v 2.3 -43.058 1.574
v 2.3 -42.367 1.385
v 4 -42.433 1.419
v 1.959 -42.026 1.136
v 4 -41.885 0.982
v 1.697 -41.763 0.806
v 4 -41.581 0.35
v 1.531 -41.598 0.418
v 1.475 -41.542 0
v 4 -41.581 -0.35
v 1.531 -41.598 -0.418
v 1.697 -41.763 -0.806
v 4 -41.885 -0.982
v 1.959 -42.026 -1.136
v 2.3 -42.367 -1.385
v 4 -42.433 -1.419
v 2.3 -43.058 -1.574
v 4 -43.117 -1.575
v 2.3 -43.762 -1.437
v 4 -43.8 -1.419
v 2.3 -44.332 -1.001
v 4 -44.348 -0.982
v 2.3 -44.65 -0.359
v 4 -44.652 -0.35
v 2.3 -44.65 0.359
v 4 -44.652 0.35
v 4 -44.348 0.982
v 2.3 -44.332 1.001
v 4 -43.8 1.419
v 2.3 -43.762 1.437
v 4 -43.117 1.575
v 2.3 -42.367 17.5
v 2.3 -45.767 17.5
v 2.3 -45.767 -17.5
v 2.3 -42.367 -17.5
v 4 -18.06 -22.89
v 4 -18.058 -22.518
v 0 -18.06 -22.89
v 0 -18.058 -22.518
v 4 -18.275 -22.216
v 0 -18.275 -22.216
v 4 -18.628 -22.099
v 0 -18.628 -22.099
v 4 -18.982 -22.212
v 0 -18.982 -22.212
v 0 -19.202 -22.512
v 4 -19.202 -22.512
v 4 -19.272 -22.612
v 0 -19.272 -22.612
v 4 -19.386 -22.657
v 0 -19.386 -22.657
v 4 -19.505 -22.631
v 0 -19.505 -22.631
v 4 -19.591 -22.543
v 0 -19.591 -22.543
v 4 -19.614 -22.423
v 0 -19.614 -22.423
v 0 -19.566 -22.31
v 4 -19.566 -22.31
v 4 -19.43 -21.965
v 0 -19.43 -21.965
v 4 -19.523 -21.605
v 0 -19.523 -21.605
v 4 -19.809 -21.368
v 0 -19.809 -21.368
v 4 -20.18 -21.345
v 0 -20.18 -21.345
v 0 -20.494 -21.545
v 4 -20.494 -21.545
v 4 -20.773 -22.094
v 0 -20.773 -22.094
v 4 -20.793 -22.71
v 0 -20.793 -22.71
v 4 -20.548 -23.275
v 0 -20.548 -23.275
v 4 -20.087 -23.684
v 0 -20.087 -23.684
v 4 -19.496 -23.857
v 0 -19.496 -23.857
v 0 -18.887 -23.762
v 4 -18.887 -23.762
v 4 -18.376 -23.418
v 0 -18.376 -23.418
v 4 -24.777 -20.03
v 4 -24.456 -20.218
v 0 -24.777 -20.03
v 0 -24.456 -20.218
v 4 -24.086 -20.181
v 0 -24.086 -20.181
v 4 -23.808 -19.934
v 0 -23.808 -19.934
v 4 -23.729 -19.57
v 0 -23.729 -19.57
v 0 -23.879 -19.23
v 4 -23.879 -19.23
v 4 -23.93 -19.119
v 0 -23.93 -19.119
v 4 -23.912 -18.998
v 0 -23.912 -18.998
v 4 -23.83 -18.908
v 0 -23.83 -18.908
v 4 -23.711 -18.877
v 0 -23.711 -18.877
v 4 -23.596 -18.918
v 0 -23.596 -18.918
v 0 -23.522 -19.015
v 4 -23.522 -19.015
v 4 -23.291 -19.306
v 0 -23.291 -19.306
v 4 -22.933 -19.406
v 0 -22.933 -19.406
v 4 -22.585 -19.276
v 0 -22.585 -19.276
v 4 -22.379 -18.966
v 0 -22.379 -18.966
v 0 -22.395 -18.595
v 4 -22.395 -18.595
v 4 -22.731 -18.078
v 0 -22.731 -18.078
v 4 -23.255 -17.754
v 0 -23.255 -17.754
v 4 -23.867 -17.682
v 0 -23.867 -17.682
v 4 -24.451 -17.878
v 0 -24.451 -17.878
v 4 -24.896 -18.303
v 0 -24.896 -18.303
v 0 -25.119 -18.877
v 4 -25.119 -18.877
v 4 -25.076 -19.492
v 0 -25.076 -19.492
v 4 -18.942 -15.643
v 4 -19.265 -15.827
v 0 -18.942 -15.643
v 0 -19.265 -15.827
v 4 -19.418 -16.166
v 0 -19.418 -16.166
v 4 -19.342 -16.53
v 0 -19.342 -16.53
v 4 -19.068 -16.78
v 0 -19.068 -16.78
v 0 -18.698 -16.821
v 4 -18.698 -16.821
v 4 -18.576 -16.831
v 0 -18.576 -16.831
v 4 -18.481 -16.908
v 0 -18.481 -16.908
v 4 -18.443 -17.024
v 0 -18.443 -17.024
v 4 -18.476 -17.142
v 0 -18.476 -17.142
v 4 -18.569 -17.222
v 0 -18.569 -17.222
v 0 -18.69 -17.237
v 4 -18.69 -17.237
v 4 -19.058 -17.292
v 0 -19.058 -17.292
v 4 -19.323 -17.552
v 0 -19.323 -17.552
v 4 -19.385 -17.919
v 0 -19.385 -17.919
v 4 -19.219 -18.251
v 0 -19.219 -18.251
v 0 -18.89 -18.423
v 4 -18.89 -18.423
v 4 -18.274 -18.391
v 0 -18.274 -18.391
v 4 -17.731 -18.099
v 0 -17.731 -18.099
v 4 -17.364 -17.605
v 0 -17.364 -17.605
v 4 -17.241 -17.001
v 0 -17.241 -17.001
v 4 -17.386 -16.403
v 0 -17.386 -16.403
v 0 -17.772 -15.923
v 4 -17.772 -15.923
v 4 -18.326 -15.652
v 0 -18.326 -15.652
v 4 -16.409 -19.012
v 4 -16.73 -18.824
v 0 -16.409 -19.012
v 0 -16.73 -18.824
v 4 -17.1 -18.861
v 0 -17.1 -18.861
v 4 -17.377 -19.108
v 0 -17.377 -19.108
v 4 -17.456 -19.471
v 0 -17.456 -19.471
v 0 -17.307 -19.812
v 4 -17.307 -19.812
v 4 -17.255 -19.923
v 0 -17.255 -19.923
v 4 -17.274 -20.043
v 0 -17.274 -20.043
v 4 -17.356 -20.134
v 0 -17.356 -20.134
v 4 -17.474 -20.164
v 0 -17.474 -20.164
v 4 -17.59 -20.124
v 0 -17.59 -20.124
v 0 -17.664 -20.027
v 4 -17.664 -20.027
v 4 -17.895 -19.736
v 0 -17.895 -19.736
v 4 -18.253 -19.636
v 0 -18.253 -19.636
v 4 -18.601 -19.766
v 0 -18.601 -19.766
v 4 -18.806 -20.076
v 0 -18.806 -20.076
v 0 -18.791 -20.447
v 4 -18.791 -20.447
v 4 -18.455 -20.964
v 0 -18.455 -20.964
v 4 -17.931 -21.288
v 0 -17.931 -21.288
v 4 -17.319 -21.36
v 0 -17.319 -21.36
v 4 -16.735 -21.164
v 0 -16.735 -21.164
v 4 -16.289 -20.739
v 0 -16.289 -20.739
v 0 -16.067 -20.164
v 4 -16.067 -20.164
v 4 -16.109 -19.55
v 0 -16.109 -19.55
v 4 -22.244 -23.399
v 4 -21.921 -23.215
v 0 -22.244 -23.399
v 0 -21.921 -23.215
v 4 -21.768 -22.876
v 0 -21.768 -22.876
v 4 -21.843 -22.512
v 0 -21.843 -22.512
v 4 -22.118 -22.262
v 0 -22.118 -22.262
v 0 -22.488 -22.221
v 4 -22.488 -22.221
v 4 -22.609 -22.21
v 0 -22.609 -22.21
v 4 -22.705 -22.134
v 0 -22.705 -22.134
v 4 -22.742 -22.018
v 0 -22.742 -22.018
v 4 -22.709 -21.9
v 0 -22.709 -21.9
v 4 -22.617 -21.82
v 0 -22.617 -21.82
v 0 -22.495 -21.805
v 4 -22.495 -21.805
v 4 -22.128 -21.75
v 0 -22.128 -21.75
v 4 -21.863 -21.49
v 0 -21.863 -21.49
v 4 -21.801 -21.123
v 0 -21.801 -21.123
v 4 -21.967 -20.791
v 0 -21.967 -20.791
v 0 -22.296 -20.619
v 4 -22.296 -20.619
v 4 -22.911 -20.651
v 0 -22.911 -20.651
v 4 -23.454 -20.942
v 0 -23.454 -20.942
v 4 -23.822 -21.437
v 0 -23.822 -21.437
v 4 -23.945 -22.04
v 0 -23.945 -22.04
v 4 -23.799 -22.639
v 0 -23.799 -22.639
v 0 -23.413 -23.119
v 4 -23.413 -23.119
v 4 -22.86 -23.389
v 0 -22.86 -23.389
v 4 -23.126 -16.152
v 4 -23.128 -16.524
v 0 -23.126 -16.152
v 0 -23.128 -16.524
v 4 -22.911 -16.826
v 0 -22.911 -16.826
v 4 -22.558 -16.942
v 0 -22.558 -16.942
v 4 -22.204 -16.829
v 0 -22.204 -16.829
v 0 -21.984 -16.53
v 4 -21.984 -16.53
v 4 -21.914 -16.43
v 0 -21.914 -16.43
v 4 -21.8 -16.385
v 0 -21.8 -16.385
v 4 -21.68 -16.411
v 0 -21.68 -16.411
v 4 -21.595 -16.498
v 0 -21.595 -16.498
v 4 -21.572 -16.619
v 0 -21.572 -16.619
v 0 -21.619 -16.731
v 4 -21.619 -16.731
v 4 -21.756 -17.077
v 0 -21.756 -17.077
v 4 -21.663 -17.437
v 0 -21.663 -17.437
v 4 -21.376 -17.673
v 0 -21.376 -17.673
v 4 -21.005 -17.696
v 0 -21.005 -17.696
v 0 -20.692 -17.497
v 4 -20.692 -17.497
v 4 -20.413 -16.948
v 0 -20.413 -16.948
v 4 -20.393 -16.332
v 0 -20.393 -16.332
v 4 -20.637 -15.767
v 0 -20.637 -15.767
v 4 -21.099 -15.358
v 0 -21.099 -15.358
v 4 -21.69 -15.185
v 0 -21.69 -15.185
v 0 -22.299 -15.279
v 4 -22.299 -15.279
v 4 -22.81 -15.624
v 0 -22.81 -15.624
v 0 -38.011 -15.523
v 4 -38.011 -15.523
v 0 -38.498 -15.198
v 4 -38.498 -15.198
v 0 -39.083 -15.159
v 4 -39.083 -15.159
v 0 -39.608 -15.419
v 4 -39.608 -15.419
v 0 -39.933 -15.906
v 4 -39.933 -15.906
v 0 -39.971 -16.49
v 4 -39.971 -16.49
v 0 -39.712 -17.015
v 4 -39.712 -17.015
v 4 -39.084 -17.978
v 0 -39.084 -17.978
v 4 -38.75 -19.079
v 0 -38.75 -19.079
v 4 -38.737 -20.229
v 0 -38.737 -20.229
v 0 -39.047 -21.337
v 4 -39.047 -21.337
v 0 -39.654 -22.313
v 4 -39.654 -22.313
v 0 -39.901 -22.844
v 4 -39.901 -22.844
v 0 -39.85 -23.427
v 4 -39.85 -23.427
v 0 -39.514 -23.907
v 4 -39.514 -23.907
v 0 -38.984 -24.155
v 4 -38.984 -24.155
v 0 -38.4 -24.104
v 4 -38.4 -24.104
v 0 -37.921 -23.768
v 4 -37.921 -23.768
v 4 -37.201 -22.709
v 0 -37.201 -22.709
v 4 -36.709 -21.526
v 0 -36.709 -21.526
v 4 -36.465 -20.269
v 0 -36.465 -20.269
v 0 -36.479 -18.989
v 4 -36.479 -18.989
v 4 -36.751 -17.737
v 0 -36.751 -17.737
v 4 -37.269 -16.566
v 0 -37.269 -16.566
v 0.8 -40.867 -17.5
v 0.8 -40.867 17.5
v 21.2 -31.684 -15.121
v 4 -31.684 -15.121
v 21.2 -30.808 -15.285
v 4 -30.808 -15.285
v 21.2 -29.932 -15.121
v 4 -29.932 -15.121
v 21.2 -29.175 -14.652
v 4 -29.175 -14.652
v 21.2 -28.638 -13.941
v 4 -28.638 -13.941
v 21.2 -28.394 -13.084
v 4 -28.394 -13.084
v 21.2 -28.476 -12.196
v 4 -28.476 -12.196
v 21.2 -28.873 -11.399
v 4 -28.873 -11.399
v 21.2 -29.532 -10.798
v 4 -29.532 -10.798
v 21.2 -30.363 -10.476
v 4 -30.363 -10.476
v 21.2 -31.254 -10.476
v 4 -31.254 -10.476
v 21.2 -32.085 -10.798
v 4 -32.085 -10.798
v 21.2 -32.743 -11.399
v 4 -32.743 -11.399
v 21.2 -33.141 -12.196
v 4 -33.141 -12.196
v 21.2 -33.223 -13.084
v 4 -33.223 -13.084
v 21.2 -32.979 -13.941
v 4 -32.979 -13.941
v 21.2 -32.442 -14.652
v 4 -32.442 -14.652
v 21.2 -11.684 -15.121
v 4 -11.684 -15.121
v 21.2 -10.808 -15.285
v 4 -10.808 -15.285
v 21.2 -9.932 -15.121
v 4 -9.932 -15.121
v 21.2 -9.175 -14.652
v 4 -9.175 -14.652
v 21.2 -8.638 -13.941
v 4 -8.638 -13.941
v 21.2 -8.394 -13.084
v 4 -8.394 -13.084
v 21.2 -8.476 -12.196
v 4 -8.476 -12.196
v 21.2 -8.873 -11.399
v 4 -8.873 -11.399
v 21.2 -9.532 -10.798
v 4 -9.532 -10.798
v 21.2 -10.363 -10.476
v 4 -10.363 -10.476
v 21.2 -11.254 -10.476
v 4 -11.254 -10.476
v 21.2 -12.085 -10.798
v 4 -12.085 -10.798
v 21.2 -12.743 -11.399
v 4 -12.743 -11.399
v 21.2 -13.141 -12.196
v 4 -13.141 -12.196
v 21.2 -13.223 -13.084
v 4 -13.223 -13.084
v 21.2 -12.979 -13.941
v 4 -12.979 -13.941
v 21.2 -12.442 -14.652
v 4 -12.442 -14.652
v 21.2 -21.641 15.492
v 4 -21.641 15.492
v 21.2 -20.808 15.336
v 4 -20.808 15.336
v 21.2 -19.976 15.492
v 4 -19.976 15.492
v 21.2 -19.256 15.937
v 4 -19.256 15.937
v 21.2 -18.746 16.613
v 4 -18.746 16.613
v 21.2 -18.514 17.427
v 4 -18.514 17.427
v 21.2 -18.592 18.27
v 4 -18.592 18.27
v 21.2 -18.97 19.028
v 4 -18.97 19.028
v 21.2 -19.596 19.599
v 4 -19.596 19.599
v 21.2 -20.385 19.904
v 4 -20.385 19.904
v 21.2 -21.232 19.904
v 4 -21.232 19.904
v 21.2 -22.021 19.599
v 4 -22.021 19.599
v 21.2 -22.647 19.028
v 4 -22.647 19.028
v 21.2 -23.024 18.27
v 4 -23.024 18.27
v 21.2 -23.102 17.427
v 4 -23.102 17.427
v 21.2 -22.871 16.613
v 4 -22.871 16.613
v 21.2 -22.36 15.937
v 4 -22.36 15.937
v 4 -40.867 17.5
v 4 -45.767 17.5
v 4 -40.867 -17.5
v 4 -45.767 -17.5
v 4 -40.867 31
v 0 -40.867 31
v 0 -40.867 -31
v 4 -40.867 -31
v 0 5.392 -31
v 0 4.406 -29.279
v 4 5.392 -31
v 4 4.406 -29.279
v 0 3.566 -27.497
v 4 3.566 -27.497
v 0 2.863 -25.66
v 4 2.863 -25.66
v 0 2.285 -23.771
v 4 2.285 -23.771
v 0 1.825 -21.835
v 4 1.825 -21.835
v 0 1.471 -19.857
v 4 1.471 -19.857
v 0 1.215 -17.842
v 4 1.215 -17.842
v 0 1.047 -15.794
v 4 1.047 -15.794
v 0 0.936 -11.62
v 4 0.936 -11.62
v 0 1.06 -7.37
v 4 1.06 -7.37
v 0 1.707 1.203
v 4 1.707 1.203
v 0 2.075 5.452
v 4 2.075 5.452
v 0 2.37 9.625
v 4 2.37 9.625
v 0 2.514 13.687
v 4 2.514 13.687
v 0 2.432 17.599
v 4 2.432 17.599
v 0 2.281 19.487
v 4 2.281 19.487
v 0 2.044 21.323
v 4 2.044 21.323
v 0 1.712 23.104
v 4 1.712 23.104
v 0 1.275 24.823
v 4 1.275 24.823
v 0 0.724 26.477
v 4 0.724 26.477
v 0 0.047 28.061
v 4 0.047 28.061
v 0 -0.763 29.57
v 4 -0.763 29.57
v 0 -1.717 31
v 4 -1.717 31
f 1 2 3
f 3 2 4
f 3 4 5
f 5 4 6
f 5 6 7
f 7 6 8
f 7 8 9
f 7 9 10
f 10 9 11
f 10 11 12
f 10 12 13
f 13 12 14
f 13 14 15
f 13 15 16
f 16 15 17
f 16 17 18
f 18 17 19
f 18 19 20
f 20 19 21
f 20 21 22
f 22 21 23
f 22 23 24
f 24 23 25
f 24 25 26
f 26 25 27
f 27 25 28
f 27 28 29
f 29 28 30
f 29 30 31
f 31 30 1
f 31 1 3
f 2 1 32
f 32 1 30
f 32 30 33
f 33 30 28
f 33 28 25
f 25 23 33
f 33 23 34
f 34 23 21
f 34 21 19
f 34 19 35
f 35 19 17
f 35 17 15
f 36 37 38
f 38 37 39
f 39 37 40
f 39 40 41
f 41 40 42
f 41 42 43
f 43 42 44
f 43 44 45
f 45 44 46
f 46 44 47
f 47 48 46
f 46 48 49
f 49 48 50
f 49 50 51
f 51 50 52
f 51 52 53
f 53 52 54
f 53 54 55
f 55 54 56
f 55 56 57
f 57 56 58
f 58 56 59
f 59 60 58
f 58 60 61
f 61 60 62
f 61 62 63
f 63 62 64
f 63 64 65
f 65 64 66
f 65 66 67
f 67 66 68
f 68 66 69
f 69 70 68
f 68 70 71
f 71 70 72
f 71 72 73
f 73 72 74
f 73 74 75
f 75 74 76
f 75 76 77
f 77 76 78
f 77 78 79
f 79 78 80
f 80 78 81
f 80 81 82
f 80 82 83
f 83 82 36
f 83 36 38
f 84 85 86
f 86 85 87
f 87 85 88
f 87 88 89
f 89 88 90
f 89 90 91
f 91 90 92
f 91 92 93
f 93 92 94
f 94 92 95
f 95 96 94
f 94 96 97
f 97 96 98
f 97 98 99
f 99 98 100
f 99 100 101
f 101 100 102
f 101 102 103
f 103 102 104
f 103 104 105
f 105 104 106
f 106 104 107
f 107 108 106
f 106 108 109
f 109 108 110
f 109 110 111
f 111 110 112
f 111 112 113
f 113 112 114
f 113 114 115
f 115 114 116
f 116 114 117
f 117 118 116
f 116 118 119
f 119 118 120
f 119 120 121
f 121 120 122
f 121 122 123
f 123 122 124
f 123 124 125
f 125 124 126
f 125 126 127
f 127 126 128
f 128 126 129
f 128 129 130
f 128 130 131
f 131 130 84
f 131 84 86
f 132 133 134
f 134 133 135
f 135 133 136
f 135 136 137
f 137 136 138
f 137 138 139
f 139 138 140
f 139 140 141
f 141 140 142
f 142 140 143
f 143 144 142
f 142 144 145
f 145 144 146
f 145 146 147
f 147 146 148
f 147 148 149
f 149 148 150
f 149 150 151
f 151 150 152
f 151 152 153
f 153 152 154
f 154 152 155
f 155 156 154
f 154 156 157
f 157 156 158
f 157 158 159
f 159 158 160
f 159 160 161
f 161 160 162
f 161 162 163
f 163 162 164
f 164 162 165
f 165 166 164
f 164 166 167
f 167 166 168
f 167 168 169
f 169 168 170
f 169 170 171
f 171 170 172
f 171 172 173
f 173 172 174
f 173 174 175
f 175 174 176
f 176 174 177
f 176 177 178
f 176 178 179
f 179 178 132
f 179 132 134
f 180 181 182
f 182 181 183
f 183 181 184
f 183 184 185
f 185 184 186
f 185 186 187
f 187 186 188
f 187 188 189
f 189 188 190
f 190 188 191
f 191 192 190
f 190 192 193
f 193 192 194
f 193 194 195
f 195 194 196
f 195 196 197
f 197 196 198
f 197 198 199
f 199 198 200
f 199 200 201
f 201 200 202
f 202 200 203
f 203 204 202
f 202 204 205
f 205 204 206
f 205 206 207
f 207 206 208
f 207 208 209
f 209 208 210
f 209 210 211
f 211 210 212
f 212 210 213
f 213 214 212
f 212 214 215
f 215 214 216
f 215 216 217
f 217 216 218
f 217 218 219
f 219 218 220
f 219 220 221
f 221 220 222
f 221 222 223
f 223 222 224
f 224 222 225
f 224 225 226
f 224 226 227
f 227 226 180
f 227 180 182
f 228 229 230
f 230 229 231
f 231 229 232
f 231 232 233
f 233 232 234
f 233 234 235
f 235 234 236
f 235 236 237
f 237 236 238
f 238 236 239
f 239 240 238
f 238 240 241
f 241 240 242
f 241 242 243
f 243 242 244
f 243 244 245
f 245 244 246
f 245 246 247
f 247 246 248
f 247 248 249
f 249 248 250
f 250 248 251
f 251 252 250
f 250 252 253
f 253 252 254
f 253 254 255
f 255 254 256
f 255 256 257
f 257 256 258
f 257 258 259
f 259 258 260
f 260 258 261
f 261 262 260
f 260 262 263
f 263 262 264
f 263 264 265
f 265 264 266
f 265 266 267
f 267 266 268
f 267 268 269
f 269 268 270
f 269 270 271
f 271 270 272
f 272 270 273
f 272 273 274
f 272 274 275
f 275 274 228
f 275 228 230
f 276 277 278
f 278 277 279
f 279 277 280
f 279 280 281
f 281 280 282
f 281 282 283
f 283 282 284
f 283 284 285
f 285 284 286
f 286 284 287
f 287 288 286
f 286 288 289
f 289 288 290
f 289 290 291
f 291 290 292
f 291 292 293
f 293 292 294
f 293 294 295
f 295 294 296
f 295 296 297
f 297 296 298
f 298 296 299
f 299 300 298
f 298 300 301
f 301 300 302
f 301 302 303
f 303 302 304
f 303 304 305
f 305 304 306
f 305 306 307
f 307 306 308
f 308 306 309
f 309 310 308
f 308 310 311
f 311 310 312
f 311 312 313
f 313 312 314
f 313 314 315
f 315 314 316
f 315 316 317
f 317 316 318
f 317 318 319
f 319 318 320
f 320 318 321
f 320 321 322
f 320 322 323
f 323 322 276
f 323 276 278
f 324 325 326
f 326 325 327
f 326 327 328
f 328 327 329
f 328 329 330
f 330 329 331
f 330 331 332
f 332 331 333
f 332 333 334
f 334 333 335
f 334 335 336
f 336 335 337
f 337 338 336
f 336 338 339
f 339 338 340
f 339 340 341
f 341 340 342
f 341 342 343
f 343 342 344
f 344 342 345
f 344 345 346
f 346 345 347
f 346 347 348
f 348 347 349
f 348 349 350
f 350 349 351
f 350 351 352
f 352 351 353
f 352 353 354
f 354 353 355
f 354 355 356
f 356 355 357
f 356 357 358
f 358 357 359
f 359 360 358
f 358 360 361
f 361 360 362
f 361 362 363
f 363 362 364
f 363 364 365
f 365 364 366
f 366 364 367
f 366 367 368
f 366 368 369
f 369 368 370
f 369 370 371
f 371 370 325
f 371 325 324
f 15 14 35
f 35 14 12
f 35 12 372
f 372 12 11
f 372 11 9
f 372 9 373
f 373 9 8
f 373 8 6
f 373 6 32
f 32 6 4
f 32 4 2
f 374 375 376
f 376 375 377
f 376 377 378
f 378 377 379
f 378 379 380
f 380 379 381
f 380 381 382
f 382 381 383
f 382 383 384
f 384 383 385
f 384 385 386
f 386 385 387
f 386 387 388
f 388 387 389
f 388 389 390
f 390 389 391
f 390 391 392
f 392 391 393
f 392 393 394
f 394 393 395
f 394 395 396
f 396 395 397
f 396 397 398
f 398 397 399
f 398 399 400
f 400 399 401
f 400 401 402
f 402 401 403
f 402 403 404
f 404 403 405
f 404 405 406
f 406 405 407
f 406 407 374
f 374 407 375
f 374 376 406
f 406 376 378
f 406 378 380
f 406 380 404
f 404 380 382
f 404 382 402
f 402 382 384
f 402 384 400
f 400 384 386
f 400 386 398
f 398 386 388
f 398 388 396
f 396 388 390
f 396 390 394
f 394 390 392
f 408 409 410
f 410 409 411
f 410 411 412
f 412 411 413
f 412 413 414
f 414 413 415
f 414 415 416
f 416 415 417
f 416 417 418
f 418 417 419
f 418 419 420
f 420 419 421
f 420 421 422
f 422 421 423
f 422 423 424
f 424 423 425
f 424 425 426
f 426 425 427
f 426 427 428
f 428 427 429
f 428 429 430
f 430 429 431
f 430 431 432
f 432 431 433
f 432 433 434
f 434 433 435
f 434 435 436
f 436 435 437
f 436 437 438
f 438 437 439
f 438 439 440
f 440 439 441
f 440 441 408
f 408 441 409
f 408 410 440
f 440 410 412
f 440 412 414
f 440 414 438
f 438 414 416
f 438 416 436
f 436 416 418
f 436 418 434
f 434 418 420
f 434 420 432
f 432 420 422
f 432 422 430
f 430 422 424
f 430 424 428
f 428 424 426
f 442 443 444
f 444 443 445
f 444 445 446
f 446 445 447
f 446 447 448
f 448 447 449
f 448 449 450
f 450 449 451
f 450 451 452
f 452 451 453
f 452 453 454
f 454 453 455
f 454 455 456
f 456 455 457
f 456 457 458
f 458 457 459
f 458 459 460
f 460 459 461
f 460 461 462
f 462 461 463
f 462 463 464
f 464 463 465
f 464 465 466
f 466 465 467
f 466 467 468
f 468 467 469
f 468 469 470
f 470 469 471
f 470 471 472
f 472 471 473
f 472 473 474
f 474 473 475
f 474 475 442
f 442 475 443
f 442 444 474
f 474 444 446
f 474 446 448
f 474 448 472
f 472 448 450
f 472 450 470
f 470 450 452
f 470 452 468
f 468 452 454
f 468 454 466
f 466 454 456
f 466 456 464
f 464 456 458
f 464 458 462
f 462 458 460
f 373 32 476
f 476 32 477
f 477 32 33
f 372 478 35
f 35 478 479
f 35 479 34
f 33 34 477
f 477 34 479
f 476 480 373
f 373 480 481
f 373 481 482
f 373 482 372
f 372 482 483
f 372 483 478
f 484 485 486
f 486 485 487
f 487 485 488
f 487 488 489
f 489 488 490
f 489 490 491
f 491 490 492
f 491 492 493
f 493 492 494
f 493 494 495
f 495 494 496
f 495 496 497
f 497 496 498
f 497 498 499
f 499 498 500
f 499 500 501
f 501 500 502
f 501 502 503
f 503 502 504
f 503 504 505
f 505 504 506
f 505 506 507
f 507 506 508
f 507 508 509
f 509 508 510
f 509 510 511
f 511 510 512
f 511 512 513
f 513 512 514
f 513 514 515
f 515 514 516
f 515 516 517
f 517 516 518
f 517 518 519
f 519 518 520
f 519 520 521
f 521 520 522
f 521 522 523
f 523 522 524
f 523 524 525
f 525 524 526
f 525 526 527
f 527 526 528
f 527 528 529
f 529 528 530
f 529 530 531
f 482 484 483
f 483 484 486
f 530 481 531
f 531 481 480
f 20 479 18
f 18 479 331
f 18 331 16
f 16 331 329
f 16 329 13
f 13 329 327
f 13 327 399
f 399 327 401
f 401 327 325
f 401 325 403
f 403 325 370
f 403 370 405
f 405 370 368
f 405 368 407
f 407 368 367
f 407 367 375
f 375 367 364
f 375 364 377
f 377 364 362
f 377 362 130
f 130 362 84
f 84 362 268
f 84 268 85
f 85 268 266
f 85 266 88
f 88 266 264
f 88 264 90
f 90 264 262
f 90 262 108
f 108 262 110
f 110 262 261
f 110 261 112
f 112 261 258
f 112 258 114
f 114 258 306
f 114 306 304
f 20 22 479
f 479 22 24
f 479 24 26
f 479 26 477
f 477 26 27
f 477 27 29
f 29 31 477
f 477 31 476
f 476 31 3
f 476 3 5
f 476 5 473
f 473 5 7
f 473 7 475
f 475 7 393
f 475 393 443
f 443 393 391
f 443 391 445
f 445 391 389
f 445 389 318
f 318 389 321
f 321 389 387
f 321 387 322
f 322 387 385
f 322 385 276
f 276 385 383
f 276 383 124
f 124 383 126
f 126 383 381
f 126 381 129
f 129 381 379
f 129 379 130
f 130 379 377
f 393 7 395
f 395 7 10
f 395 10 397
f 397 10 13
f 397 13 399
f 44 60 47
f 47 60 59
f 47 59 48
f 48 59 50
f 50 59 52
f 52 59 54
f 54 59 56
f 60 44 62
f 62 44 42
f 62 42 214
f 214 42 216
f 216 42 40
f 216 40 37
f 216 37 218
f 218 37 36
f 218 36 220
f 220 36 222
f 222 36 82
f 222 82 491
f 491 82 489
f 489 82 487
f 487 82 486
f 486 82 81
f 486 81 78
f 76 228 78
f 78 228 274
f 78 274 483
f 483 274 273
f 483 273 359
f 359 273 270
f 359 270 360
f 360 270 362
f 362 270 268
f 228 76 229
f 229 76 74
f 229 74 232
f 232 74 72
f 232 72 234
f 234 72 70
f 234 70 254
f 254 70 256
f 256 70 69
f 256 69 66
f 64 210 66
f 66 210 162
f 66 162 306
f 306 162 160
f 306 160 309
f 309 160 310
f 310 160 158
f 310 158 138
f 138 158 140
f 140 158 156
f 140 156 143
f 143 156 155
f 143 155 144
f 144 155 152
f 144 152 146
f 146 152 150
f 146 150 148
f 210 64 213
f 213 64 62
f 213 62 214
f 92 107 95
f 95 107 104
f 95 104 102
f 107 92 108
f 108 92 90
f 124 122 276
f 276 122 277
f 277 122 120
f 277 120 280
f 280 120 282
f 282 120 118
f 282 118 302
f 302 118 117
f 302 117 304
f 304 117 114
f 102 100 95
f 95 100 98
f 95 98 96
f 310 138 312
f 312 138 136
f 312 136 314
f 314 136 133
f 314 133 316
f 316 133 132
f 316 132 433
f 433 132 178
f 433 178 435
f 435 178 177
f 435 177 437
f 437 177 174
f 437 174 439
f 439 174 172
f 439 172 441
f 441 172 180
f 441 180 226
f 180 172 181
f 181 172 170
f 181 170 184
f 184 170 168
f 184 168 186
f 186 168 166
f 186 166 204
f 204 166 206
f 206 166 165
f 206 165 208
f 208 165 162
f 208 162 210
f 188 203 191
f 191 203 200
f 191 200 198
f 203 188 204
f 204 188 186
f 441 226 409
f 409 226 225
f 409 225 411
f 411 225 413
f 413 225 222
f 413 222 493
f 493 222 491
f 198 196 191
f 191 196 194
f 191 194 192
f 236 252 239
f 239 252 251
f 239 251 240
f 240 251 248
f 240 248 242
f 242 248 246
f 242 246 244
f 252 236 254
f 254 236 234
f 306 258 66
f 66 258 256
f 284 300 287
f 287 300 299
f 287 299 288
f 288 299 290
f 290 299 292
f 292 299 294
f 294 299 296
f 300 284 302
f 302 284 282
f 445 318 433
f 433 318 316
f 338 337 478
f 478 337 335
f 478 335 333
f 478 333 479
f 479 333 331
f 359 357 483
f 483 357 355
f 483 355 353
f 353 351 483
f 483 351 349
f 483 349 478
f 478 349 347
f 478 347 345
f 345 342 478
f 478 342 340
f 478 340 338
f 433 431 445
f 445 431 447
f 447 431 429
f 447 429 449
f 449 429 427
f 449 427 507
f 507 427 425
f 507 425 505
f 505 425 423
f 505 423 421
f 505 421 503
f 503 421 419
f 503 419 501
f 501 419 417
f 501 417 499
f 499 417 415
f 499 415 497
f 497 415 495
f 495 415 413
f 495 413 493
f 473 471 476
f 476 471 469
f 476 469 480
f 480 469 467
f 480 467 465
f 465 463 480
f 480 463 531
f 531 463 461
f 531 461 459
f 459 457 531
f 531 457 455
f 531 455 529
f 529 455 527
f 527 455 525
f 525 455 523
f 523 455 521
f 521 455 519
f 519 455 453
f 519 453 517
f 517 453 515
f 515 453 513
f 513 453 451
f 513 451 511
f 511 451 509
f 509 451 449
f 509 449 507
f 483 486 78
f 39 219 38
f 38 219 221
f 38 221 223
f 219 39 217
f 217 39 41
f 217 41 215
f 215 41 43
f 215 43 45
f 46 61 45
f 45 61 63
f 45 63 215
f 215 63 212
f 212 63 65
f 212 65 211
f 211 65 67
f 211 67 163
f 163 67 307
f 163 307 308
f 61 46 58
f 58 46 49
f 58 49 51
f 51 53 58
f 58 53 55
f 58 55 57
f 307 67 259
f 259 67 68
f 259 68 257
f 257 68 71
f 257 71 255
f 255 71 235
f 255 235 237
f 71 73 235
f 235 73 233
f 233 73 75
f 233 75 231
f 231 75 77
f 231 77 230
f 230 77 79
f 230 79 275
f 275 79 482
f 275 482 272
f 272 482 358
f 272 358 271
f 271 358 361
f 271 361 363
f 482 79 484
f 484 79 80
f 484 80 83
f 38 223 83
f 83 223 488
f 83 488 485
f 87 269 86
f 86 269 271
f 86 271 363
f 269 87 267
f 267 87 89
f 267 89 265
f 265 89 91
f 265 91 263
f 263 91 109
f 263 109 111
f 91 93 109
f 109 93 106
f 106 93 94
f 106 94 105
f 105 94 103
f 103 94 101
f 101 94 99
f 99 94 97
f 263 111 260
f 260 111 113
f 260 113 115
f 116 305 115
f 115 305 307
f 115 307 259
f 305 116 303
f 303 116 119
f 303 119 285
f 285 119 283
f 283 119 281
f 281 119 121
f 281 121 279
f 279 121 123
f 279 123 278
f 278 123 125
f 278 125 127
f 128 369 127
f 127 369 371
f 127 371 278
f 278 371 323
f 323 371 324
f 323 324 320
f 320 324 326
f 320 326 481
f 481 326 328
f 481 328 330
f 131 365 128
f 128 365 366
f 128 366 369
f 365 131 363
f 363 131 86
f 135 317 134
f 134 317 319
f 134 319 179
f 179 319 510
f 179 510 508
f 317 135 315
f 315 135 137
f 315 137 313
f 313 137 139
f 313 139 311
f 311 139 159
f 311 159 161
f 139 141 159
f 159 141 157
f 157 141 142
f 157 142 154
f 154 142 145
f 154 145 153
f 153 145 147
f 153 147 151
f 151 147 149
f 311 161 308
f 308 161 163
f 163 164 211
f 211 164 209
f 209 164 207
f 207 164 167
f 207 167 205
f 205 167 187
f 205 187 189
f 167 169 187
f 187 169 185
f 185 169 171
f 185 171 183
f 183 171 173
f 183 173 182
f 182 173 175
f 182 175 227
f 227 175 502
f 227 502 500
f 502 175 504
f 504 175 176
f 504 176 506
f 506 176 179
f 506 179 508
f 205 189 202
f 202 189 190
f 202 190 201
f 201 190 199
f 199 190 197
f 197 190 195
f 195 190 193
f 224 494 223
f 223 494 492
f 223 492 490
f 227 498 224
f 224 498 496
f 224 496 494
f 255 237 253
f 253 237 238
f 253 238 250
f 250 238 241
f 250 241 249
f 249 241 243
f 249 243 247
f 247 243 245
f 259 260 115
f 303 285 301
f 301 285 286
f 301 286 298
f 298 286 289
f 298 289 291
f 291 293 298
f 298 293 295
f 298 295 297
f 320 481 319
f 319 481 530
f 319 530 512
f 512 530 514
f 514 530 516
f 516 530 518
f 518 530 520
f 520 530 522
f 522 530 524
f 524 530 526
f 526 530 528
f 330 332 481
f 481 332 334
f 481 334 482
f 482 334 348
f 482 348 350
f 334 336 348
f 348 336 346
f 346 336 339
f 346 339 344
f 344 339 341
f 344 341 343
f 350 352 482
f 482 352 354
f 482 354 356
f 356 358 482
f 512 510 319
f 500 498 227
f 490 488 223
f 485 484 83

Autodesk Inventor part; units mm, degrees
ref_plane "YZ Plane" through (0, 0, 0) normal (1, 0, 0) x (0, 1, 0)
ref_plane "XZ Plane" through (0, 0, 0) normal (0, 1, 0) x (-1, 0, 0)
ref_plane "XY Plane" through (0, 0, 0) normal (0, 0, 1) x (1, 0, 0)
sketch "Sketch1" plane through (0, 0, 0) normal (1, 0, 0) x (0, 1, 0)
  spline S0 degree 3 poles (-5.8666, 35) (13.8832, 21.2522) (-10.0462, -16.0043) (8.551, -35) knots 1 1 1 1 2 2 2 2
  line L0 (-5.8666, 35) -> (13.8832, 21.2522) construction
  line L1 (13.8832, 21.2522) -> (-10.0462, -16.0043) construction
  line L2 (-10.0462, -16.0043) -> (8.551, -35) construction
  line L3 (0, 65.172) -> (0, -65.172) construction
  line L4 (43.74, 0) -> (-43.74, 0) construction
  line L5 (-5.8666, 35) -> (-40.8666, 35)
  line L6 (-40.8666, 35) -> (-40.8666, 31)
  line L7 (-40.8666, 31) -> (-1.7165, 31)
  line L8 (-40.8666, 31) -> (-40.8666, -35)
  line L9 (-40.8666, -35) -> (8.551, -35)
  line L10 (-40.8666, -31) -> (5.392, -31)
  point P0 (0, 0)
  point P1 (0, 0)
  point P2 (-1.7165, 31)
  point P3 (0, 0)
  point P4 (0, 0)
  point P5 (0, 0)
  dimension "d0" = 35
  dimension "d1" = 4
  dimension "d2" = 4
extrude "Extrusion1" add sketch "Sketch1" along normal blind 4 contours S0 L10 L8 L7
sketch "Sketch3" plane through (0, -40.8666, -31) normal (0, -1, 0) x (1, 0, 0)
  line L0 (2.3, 48.5) -> (4, 48.5)
  line L1 (4, 48.5) -> (4, 13.5)
  line L2 (4, 13.5) -> (2.3, 13.5)
  line L3 (2.3, 13.5) -> (2.3, 48.5)
  line L4 (0, 62) -> (0, 0) projected
  line L5 (0, 0) -> (4, 0) projected
  line L6 (4, 62) -> (4, 0) projected
  line L7 (0, 62) -> (4, 62) projected
  point P0 (0, 31)
  point P1 (4, 31)
  dimension "d5" = 1.7
  dimension "d6" = 35
extrude "Extrusion2" add sketch "Sketch3" along normal blind 4.9 contours L0 L1 L2 L3
sketch "Sketch4" plane through (4, 0, 0) normal (1, 0, 0) x (0, 0, -1)
  circle A0 centre (12.8601, -10.8083) radius 2.425
  circle A1 centre (12.8601, -30.8083) radius 2.425
  line L0 (12.8601, -10.8083) -> (12.8601, -30.8083) construction
  circle A2 centre (-17.6399, -20.8083) radius 2.3037
  point P0 (0, 0)
  dimension "d11" = 4.85
  dimension "d12" = 4.85
  dimension "d13" = 20
  dimension "d14" = 4.6075
  dimension "d15" = 30.5
extrude "Extrusion3" add sketch "Sketch4" along normal blind 17.2
chamfer "Chamfer1" distance 1.5 angle 45 1 edges at (2.3, -40.8666, 0)
sketch "Sketch5" plane through (4, 0, 0) normal (1, 0, 0) x (0, 0, -1)
  arc A0 (17.8302, -18.7899) -> (16.2318, -18.8201) centre (17.0282, -18.6552) ccw construction
  arc A1 (18.4232, -18.8896) -> (15.643, -18.942) centre (17.0282, -18.6552) ccw
  arc A2 (17.2372, -18.6903) -> (16.8207, -18.6981) centre (17.0282, -18.6552) ccw
  arc A3 (17.2372, -18.6903) -> (18.4232, -18.8896) centre (17.8302, -18.7899) ccw
  arc A4 (15.643, -18.942) -> (16.8207, -18.6981) centre (16.2318, -18.8201) ccw
  arc A5 (17.1142, -21.1556) -> (16.3411, -22.5549) centre (16.5965, -21.7828) ccw construction
  arc A6 (17.497, -20.6919) -> (16.1523, -23.1258) centre (16.5965, -21.7828) ccw
  arc A7 (16.7314, -21.6193) -> (16.5299, -21.984) centre (16.5965, -21.7828) ccw
  arc A8 (16.7314, -21.6193) -> (17.497, -20.6919) centre (17.1142, -21.1556) ccw
  arc A9 (16.1523, -23.1258) -> (16.5299, -21.984) centre (16.3411, -22.5549) ccw
  arc A10 (18.8049, -22.9585) -> (19.6302, -24.3277) centre (19.0892, -23.7205) ccw construction
  arc A11 (18.5947, -22.3952) -> (20.0302, -24.7766) centre (19.0892, -23.7205) ccw
  arc A12 (19.0151, -23.5219) -> (19.2302, -23.8787) centre (19.0892, -23.7205) ccw
  arc A13 (19.0151, -23.5219) -> (18.5947, -22.3952) centre (18.8049, -22.9585) ccw
  arc A14 (20.0302, -24.7766) -> (19.2302, -23.8787) centre (19.6302, -24.3277) ccw
  arc A15 (21.2117, -22.3958) -> (22.81, -22.3656) centre (22.0137, -22.5305) ccw construction
  arc A16 (20.6187, -22.2961) -> (23.3988, -22.2437) centre (22.0137, -22.5305) ccw
  arc A17 (21.8047, -22.4954) -> (22.2212, -22.4875) centre (22.0137, -22.5305) ccw
  arc A18 (21.8047, -22.4954) -> (20.6187, -22.2961) centre (21.2117, -22.3958) ccw
  arc A19 (23.3988, -22.2437) -> (22.2212, -22.4875) centre (22.81, -22.3656) ccw
  arc A20 (21.9277, -20.0301) -> (22.7007, -18.6308) centre (22.4454, -19.4029) ccw construction
  arc A21 (21.5449, -20.4938) -> (22.8895, -18.0599) centre (22.4454, -19.4029) ccw
  arc A22 (22.3105, -19.5663) -> (22.5119, -19.2017) centre (22.4454, -19.4029) ccw
  arc A23 (22.3105, -19.5663) -> (21.5449, -20.4938) centre (21.9277, -20.0301) ccw
  arc A24 (22.8895, -18.0599) -> (22.5119, -19.2017) centre (22.7007, -18.6308) ccw
  arc A25 (20.2369, -18.2272) -> (19.4116, -16.858) centre (19.9526, -17.4652) ccw construction
  arc A26 (20.4471, -18.7905) -> (19.0116, -16.4091) centre (19.9526, -17.4652) ccw
  arc A27 (20.0267, -17.6638) -> (19.8117, -17.307) centre (19.9526, -17.4652) ccw
  arc A28 (20.0267, -17.6638) -> (20.4471, -18.7905) centre (20.2369, -18.2272) ccw
  arc A29 (19.0116, -16.4091) -> (19.8117, -17.307) centre (19.4116, -16.858) ccw
  arc A30 (23.0405, -38.7872) -> (16.269, -38.8619) centre (19.6983, -42.7704) ccw construction
  arc A31 (23.7678, -37.9205) -> (15.5229, -38.0114) centre (19.6983, -42.7704) ccw
  arc A32 (22.3133, -39.6539) -> (17.0152, -39.7123) centre (19.6983, -42.7704) ccw
  arc A33 (22.3133, -39.6539) -> (23.7678, -37.9205) centre (23.0405, -38.7872) ccw
  arc A34 (15.5229, -38.0114) -> (17.0152, -39.7123) centre (16.269, -38.8619) ccw
  point P0 (0, 0)
  point P1 (19.5209, -20.5928)
  dimension "d30" = 360
extrude "Extrusion4" cut sketch "Sketch5" against normal blind 4
sketch "Sketch6" plane through (4, 0, 0) normal (1, 0, 0) x (0, 0, -1)
  line L0 (-17.5, -40.8666) -> (17.5, -40.8666) projected
  circle A0 centre (0, -43.1166) radius 1.575
  line L1 (17.5, -40.8666) -> (17.5, -45.7666) projected
  point P0 (0, 0)
  dimension "d32" = 3.15
  dimension "d33" = 2.25
  dimension "d36" = 17.5
extrude "Extrusion5" cut sketch "Sketch6" against normal blind 4
equation "\"d11\" = d12"
equation "\"d14\" = 0.95 * d12"
properties part number "Case Right"
